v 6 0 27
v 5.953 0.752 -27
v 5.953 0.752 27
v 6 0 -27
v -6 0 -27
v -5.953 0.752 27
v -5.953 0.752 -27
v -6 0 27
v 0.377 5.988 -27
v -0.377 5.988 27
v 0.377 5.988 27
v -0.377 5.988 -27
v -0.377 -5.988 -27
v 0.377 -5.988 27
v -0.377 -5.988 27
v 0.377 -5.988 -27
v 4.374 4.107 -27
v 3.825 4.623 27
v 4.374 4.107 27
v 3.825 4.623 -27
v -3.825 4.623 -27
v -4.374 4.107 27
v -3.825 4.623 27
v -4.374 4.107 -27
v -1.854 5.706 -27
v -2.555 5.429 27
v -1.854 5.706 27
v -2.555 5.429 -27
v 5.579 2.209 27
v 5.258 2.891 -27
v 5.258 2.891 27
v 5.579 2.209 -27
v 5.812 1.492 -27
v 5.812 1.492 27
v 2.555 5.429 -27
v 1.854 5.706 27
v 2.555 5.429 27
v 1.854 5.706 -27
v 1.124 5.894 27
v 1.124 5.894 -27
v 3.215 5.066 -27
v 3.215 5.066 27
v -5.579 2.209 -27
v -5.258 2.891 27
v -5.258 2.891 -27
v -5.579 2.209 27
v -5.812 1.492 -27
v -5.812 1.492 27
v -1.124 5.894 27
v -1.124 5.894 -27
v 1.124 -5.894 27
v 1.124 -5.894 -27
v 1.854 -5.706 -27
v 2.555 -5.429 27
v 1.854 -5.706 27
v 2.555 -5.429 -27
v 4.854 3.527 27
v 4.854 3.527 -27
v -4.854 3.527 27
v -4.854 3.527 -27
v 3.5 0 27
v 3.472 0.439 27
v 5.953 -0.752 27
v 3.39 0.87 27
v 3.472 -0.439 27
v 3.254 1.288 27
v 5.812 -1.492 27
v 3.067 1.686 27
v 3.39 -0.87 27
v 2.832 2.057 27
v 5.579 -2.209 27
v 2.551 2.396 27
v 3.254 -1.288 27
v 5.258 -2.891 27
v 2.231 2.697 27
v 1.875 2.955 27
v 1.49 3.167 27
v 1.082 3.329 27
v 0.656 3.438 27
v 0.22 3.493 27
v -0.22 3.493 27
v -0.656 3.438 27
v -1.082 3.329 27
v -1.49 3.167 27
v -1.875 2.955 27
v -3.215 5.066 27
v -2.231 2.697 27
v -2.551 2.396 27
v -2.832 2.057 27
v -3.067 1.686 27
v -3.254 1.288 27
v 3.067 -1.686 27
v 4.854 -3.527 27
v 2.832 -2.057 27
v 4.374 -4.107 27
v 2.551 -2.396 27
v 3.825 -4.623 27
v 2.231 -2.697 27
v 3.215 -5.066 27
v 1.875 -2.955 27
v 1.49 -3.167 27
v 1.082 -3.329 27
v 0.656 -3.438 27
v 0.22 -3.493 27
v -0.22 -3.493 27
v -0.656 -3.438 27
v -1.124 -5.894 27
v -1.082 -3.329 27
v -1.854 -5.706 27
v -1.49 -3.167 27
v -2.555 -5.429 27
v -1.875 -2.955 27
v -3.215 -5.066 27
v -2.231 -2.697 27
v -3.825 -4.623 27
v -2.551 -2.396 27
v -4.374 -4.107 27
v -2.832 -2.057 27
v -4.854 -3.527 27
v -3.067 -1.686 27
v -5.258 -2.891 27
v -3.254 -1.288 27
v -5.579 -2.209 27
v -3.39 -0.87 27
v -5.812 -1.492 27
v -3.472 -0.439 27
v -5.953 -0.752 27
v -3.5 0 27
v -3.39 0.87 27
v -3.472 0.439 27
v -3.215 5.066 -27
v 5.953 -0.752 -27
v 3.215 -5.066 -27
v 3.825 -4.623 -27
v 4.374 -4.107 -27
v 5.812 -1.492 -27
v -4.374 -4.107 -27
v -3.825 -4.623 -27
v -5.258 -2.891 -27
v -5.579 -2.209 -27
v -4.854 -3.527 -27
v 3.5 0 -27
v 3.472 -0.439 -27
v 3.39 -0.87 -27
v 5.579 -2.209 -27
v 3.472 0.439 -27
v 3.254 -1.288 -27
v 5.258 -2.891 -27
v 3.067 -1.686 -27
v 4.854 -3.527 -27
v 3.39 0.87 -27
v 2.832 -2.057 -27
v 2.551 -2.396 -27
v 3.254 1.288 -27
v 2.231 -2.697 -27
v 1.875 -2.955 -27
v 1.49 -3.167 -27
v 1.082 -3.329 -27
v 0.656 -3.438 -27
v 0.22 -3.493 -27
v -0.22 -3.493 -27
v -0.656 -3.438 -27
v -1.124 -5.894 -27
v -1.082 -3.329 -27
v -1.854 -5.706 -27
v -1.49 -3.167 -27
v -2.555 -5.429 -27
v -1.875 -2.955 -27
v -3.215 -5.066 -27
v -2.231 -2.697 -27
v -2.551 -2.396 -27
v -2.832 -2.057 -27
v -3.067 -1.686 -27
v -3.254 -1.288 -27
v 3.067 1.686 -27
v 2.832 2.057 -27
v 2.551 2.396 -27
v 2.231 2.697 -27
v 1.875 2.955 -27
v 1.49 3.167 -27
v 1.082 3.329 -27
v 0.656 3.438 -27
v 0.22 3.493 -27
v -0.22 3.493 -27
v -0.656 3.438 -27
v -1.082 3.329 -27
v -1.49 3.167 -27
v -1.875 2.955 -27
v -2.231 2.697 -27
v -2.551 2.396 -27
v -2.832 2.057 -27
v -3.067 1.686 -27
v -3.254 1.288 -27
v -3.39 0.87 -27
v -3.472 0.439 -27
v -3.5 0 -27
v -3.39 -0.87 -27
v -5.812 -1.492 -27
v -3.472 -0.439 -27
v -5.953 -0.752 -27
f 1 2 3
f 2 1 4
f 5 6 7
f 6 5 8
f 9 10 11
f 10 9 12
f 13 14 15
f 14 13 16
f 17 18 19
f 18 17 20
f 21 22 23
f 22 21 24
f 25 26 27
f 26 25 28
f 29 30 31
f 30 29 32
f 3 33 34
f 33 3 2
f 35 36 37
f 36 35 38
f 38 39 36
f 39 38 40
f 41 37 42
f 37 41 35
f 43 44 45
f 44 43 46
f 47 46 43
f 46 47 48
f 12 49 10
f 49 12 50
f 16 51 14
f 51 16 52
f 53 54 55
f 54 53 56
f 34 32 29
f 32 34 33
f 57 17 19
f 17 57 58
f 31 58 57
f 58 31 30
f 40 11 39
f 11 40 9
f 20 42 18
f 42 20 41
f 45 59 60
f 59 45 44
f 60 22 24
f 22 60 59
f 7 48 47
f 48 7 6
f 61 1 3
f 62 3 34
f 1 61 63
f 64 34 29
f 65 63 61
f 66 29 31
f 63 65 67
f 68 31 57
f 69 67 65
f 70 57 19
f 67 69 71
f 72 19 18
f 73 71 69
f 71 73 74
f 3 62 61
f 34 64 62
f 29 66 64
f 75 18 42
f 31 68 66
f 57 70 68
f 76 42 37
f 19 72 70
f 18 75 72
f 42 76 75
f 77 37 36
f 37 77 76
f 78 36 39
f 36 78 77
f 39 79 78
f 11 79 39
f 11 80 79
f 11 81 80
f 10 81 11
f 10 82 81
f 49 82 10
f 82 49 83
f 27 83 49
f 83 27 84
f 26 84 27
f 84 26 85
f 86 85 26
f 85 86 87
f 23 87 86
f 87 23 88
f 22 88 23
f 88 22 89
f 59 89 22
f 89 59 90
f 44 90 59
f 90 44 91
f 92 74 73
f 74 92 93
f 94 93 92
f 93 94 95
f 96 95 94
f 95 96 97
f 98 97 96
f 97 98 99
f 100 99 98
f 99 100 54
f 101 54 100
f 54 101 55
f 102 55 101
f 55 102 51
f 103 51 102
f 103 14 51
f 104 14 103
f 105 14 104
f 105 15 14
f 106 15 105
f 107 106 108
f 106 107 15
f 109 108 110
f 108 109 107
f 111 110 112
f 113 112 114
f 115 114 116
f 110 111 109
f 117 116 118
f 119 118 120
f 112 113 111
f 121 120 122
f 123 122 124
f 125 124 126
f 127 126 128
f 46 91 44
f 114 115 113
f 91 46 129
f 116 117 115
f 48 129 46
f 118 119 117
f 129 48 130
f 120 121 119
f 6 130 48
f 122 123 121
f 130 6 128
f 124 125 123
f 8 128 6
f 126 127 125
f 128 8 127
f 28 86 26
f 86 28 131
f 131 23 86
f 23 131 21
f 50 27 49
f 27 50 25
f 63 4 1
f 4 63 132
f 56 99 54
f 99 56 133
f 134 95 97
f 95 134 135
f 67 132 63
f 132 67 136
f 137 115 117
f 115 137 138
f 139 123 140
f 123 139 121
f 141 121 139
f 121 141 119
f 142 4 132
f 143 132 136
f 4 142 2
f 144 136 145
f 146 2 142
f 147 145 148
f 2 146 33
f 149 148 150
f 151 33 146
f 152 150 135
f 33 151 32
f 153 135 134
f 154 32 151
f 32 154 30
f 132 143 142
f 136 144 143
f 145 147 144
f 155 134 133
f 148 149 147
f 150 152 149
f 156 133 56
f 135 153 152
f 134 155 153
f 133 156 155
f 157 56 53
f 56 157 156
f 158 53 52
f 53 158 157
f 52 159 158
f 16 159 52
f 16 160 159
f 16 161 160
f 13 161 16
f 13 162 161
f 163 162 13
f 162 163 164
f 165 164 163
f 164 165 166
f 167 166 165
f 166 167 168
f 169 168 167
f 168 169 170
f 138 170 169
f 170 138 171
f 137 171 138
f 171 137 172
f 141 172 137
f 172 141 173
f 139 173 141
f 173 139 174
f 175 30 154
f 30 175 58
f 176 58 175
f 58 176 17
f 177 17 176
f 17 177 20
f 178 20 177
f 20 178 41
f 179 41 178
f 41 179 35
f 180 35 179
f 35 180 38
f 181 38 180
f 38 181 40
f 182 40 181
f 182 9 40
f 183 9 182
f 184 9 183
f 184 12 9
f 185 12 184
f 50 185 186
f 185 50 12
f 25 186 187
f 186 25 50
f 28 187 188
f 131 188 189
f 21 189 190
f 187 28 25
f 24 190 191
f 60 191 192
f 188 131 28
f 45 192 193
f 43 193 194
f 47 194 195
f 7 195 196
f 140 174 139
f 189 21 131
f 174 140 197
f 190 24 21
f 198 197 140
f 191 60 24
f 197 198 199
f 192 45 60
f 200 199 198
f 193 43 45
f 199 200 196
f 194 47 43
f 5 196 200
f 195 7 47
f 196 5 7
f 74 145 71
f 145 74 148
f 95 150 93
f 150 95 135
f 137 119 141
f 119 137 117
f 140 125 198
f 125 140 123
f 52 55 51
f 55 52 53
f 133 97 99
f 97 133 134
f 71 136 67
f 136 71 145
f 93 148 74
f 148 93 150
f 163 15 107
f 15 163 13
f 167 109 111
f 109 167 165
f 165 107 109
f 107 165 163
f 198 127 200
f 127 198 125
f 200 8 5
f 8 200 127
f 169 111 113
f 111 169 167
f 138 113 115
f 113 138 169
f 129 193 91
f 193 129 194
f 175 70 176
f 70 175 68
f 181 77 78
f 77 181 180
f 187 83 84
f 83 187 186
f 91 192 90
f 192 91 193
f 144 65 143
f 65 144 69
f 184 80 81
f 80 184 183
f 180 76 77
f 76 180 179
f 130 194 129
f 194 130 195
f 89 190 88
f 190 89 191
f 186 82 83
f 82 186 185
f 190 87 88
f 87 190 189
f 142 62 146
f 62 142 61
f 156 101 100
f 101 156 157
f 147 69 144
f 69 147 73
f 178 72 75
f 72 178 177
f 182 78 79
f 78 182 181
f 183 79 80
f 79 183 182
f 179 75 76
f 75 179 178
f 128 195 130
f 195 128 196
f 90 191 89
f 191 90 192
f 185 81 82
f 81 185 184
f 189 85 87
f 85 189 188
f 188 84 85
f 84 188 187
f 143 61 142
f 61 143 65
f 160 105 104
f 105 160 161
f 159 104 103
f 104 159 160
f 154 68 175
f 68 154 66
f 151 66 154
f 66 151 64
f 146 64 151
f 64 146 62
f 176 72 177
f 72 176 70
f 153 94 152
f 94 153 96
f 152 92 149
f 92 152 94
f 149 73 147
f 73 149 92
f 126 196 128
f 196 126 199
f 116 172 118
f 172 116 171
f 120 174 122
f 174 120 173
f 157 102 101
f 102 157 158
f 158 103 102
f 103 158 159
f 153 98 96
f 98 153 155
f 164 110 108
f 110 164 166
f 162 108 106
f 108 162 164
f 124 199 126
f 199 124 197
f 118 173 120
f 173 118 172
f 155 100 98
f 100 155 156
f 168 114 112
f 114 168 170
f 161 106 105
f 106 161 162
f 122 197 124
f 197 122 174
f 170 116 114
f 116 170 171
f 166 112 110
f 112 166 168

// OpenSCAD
$fn = 50;


difference() {
	union() {
		translate(v = [0, 0, -27.0000000000]) {
			cylinder(h = 54, r = 6.0000000000);
		}
	}
	union() {
		translate(v = [0, 0, -100.0000000000]) {
			cylinder(h = 200, r = 3.5000000000);
		}
	}
}
